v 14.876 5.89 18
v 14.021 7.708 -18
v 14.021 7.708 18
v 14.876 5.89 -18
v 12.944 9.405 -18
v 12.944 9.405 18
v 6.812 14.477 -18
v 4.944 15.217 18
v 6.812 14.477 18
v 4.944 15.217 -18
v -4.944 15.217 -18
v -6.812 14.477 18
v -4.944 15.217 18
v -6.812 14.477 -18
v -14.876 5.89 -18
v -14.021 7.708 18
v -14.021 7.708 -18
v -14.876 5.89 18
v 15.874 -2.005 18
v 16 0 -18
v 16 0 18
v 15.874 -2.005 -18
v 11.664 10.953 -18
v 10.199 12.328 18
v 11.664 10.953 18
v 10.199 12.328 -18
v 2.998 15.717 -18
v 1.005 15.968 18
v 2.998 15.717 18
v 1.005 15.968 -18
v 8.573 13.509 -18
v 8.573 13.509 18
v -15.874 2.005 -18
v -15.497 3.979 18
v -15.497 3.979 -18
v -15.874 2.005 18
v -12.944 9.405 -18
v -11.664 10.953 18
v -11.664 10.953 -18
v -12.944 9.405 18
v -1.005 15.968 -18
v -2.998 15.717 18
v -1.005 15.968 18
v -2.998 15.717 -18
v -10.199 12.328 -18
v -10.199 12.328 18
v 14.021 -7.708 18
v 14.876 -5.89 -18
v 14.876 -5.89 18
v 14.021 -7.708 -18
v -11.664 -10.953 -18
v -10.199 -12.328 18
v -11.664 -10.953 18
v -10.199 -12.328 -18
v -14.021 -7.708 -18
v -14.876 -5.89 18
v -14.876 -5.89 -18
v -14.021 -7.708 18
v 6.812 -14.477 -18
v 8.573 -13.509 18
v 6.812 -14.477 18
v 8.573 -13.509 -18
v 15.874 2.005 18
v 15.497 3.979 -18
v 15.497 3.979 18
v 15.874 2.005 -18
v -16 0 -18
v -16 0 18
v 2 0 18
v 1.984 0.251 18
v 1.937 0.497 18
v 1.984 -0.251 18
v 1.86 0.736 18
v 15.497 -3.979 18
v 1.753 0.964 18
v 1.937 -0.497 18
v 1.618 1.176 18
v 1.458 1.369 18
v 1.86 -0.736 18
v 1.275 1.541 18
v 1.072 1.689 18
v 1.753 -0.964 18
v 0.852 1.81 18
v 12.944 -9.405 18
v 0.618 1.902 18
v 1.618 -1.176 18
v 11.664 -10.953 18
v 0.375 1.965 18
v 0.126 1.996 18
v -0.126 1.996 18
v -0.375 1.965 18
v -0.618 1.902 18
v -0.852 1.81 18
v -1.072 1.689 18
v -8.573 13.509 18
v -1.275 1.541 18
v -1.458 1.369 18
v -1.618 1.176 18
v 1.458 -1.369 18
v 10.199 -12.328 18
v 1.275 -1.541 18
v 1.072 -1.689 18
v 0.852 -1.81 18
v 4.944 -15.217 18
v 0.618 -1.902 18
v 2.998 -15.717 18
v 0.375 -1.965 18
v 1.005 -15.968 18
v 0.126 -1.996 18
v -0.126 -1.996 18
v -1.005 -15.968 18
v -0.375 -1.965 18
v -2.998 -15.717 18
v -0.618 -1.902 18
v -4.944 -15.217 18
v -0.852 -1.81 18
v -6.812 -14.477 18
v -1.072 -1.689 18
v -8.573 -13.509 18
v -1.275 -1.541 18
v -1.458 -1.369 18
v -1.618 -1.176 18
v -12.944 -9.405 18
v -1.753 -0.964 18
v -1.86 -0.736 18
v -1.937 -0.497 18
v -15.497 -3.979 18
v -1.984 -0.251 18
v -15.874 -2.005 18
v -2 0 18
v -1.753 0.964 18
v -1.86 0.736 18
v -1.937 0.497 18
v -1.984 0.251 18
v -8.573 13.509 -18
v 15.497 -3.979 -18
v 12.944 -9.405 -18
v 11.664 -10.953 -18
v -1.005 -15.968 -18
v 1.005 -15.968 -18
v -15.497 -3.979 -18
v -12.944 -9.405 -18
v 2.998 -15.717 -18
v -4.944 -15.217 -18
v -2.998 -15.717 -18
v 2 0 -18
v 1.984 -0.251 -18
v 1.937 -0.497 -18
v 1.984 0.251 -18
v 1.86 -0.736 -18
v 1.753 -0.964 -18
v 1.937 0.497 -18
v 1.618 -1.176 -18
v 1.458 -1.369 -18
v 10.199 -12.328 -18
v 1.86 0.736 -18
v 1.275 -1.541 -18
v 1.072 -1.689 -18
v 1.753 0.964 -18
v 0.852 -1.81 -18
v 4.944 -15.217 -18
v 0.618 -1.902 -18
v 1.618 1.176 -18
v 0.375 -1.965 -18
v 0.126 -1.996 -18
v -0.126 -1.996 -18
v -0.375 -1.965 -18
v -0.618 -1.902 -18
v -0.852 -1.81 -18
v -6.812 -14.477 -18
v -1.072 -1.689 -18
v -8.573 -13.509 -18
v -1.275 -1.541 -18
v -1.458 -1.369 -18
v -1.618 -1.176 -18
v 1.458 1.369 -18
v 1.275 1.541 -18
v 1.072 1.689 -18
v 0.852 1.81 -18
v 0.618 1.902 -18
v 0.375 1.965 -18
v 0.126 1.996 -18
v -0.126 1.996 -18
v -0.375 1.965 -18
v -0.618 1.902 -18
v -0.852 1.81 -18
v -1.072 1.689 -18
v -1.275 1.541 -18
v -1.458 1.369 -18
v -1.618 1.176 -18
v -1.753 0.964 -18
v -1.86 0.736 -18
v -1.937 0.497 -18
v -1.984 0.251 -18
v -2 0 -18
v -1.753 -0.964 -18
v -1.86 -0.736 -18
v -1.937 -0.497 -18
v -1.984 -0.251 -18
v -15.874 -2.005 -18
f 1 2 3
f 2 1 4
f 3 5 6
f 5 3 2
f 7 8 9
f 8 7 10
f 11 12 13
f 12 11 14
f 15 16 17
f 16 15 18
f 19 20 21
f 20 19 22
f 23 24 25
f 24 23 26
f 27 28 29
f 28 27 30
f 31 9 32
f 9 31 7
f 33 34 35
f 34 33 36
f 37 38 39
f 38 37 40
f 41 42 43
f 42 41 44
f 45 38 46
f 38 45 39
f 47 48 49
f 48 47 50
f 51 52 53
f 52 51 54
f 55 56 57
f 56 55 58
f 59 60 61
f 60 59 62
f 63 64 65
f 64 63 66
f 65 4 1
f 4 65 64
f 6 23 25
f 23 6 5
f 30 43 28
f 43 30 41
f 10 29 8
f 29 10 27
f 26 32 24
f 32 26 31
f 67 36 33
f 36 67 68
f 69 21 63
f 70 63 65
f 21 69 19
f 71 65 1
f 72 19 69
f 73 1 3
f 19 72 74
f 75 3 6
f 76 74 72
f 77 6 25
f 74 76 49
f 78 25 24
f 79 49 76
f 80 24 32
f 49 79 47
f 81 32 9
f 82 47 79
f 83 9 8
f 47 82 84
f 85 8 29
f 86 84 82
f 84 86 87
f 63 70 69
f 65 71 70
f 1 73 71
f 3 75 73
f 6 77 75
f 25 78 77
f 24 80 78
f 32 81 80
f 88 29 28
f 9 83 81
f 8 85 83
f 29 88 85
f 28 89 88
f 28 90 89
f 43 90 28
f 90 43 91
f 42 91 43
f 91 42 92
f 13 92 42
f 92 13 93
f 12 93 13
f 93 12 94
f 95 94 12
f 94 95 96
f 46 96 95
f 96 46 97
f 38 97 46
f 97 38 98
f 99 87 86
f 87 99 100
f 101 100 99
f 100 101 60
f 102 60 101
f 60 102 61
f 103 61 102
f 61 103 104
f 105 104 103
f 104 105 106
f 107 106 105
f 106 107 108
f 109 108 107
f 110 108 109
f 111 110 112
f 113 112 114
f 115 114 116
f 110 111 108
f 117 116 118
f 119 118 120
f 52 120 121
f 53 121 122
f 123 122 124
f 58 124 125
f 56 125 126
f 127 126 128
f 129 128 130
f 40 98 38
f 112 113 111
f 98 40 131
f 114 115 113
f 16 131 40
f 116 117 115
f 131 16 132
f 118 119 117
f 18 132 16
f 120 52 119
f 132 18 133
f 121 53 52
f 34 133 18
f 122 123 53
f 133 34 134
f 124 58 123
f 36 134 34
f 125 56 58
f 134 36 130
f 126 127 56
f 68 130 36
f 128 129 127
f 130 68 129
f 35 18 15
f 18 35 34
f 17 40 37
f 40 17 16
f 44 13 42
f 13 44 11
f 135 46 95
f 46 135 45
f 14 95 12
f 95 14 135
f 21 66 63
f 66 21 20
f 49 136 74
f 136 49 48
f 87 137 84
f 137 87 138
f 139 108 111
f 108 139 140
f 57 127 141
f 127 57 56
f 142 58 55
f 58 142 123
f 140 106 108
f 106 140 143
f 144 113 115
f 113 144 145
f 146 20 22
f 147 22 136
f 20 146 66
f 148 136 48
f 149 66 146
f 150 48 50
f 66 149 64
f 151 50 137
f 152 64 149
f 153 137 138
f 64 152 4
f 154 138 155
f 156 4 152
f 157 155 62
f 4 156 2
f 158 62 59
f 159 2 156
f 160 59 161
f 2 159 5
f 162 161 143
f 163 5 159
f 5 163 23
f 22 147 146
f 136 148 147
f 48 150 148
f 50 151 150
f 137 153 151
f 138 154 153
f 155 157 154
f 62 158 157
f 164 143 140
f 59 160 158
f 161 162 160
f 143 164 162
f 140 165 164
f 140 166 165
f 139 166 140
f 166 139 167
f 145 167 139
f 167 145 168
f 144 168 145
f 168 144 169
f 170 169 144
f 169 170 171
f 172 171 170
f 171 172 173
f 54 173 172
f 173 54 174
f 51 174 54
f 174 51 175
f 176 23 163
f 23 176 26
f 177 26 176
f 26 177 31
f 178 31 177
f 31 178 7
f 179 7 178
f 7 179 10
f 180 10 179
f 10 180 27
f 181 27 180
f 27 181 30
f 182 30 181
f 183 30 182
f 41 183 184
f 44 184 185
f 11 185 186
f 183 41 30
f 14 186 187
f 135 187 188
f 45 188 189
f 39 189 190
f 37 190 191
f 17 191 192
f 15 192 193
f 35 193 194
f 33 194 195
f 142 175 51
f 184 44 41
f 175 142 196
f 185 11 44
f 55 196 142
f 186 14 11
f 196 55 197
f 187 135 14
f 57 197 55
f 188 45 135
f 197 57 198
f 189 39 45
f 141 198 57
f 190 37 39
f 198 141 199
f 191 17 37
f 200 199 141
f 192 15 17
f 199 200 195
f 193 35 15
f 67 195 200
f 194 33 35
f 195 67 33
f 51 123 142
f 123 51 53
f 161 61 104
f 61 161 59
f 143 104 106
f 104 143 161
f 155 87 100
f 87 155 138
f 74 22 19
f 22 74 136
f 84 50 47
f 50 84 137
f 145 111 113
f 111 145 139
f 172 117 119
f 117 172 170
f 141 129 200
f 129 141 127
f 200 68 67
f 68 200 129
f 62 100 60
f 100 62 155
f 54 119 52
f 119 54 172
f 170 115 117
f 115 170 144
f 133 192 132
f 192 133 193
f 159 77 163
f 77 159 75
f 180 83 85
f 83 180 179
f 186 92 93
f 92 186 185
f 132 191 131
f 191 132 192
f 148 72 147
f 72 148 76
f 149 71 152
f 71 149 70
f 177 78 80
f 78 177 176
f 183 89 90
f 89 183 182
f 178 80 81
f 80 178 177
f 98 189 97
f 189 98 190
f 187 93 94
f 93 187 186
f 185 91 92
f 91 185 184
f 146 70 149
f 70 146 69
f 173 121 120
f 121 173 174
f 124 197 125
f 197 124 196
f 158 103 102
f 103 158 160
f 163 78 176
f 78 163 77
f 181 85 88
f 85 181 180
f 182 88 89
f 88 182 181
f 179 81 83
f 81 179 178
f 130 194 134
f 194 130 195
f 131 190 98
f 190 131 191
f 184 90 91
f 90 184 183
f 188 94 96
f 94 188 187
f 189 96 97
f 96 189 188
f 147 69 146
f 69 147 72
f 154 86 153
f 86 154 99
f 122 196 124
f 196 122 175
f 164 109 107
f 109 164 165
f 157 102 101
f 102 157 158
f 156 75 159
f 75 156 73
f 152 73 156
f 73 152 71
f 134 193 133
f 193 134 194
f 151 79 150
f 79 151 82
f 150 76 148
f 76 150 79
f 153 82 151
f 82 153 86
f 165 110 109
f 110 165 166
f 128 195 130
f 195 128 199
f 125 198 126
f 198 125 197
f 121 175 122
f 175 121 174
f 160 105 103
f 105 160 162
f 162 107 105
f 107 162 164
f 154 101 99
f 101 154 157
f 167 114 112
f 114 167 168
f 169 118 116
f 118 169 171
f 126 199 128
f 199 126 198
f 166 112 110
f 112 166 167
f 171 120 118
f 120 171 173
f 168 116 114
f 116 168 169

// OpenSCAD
$fn = 50;


difference() {
	union() {
		translate(v = [0, 0, -18.0000000000]) {
			cylinder(h = 36, r = 16.0000000000);
		}
	}
	union() {
		translate(v = [0, 0, -100.0000000000]) {
			cylinder(h = 200, r = 2);
		}
	}
}
